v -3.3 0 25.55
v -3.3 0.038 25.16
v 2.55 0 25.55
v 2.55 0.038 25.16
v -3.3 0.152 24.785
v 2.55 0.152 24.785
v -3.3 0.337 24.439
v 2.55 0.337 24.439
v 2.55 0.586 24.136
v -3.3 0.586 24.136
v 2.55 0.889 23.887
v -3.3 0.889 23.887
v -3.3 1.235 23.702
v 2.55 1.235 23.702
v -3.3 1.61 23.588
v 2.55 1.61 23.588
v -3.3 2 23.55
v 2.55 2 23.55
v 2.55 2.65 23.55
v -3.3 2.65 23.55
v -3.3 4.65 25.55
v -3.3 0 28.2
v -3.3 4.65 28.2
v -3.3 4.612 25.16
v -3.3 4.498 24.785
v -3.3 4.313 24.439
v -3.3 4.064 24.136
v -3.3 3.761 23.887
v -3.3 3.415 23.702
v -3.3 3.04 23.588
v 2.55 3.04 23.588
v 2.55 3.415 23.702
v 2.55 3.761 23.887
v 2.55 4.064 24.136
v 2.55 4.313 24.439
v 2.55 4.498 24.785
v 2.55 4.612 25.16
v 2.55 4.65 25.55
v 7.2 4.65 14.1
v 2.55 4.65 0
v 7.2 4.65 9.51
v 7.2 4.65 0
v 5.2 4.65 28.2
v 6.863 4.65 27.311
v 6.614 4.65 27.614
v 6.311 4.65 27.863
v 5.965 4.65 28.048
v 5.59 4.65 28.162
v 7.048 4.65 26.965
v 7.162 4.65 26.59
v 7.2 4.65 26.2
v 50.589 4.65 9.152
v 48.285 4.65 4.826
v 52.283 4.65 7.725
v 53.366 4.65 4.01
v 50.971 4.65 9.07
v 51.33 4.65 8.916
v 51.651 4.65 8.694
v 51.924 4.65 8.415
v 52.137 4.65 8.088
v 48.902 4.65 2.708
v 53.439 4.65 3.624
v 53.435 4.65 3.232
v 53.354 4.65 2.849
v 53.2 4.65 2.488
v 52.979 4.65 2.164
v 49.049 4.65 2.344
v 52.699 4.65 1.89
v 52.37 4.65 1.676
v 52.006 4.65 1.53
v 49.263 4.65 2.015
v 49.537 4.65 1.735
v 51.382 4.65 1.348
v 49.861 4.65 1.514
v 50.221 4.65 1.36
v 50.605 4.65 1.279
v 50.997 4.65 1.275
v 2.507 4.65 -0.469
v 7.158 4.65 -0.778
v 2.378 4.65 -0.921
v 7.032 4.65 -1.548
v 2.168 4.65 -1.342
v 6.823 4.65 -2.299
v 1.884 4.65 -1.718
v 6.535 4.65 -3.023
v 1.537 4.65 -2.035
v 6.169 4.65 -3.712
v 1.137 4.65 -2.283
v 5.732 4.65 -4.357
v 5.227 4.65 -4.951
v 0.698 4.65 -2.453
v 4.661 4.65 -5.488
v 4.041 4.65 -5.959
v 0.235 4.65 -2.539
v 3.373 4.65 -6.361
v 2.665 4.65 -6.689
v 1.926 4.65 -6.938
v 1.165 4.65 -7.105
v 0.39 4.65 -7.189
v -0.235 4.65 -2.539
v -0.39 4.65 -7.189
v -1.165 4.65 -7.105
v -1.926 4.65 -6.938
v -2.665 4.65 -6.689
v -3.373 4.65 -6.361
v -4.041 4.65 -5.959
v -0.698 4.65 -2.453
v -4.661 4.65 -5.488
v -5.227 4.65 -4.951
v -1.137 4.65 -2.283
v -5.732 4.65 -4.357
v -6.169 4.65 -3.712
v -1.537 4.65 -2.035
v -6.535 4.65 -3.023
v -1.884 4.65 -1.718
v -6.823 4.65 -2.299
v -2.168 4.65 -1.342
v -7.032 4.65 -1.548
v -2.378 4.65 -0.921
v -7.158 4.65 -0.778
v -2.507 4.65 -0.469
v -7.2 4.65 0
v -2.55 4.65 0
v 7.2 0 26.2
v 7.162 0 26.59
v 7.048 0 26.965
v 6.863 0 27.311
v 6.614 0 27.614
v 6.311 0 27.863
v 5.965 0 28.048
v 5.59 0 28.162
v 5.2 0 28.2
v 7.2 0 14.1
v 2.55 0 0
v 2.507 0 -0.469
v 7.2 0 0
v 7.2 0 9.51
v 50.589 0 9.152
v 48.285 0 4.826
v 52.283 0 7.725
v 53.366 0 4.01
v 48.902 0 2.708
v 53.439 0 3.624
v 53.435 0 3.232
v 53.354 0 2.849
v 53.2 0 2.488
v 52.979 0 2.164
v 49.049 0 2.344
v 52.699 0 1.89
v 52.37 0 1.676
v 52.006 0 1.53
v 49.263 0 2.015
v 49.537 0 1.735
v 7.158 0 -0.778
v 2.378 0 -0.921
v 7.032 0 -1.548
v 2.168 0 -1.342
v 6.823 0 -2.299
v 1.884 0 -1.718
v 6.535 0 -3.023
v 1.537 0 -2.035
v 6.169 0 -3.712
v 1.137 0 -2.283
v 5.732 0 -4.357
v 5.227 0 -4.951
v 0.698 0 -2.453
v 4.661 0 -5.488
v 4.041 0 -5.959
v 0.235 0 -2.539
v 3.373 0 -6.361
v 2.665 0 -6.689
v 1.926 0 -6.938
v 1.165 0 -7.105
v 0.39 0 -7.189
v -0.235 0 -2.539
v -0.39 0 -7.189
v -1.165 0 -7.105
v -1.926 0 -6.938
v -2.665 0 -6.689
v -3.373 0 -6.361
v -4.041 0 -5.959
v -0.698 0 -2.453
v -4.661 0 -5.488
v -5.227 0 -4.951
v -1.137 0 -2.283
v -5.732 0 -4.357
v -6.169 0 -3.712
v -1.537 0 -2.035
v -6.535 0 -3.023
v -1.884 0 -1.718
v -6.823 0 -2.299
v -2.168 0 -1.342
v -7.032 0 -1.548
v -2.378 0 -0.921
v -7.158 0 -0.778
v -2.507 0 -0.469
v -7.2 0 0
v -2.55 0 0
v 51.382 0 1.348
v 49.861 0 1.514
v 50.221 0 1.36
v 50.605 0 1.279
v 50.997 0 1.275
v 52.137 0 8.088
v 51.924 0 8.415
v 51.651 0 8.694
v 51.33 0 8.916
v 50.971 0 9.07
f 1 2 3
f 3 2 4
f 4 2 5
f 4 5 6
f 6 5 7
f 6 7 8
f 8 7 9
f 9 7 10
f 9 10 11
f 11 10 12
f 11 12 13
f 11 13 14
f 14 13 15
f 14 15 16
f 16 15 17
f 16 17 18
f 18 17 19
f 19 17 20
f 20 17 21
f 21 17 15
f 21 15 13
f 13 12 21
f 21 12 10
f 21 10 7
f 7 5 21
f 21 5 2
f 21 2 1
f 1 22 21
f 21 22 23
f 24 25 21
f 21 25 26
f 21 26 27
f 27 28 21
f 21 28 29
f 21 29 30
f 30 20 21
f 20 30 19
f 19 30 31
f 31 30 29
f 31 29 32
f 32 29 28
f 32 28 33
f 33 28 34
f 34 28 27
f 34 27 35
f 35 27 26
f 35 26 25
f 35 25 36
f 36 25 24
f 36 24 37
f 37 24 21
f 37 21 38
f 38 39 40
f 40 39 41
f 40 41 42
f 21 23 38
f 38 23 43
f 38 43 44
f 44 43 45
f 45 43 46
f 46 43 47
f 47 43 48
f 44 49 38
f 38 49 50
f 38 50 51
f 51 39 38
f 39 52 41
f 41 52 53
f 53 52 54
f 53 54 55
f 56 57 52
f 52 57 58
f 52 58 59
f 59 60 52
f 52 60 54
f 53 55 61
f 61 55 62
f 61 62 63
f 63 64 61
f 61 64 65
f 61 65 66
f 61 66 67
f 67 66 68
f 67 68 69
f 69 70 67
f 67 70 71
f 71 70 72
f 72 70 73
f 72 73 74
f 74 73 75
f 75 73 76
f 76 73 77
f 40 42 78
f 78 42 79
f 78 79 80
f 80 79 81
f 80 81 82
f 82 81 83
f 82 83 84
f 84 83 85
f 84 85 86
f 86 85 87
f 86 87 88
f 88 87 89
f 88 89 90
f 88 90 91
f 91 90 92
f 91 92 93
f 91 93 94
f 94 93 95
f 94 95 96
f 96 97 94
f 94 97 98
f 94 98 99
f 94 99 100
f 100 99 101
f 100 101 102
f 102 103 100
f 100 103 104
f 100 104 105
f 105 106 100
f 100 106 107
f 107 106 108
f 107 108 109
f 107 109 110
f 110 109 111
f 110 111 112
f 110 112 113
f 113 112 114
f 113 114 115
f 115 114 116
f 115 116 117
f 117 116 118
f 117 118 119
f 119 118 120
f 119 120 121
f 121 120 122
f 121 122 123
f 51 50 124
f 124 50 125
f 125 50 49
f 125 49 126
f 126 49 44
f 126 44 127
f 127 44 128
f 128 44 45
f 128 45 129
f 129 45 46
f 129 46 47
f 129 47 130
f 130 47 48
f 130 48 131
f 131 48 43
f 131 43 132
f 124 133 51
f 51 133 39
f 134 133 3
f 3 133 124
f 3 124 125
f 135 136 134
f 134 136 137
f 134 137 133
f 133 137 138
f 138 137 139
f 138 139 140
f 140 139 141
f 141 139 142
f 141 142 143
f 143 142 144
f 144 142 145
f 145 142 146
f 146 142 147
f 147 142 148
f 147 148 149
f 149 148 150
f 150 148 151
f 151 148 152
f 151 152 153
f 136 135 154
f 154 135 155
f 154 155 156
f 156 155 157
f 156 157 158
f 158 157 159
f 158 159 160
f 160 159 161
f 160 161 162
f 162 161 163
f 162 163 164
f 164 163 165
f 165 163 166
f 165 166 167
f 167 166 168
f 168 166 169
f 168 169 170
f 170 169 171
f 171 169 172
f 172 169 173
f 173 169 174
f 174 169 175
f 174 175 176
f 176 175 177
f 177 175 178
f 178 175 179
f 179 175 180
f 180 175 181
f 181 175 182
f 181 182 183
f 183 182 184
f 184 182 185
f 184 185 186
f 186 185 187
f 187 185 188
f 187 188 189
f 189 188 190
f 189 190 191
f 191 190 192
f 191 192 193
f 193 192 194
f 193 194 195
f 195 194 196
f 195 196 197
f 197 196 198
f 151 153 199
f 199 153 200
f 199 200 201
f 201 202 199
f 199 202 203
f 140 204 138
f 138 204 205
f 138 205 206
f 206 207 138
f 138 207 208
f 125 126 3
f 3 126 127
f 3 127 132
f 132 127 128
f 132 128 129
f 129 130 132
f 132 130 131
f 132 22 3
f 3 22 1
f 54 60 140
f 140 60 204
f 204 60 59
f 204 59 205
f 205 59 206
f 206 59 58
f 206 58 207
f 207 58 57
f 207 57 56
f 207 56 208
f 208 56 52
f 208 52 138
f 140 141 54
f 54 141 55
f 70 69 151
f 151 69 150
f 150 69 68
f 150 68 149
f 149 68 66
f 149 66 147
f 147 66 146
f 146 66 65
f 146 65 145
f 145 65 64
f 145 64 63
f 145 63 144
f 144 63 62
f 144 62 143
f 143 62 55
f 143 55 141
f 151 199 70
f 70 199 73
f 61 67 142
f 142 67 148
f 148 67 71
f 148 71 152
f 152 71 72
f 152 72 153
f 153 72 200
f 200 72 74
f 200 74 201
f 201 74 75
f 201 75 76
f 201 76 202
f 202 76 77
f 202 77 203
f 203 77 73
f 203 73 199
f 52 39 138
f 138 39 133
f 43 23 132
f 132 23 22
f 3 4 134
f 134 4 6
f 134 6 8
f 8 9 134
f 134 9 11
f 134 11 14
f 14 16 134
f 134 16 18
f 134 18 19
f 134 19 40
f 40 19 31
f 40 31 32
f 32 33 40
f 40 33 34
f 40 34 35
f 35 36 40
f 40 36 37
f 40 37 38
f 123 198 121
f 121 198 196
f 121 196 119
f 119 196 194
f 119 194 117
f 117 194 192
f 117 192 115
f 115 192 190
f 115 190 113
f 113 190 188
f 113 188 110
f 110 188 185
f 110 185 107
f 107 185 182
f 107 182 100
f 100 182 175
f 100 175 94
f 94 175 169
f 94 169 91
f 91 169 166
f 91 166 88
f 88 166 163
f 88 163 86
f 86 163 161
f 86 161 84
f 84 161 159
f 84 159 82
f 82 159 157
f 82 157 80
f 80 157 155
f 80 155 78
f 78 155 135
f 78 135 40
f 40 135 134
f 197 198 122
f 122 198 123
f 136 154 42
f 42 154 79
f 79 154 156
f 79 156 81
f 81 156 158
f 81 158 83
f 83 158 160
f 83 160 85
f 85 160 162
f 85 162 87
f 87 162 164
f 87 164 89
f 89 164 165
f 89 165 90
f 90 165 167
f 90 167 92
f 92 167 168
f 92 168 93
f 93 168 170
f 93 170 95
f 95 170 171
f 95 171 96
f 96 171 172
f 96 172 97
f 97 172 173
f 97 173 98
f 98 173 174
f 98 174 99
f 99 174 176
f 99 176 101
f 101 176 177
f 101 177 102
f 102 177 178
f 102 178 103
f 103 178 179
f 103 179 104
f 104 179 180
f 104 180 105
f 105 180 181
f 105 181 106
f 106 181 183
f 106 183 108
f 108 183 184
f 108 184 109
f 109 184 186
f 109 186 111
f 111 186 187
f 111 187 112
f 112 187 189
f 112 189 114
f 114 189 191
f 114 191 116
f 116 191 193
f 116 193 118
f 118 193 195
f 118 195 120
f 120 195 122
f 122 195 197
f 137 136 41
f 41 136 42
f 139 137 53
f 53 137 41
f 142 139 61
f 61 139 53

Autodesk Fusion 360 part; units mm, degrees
sketch "Sketch1" plane through (0, 0, 0) normal (0, 1, 0) x (1, 0, 0)
  circle A0 centre (0, 0) radius 7.2
  circle A1 centre (0, 0) radius 2.55
  line L0 (7.2, 0) -> (2.55, 0)
  line L1 (2.55, 0) -> (2.55, -28.2)
  line L2 (2.55, -28.2) -> (7.2, -28.2)
  line L3 (7.2, -28.2) -> (7.2, 0)
  line L4 (7.2, -28.2) -> (-3.3, -28.2)
  line L5 (-3.3, -28.2) -> (-3.3, -23.55)
  line L6 (-3.3, -23.55) -> (7.2, -23.55)
  line L7 (7.2, -23.55) -> (7.2, -28.2)
  line L8 (2.55, 0) -> (-7.2, 0)
  line L9 (7.2, -5.8) -> (7.2, -1.15)
  line L10 (7.2, -14.1) -> (51.9103, -9.0016)
  line L11 (51.9103, -9.0016) -> (51.3936, -4.471)
  line L12 (51.3936, -4.471) -> (6.6834, -9.5694)
  line L13 (6.6834, -9.5694) -> (7.2, -14.1)
  line L14 (51.9103, -9.0016) -> (47.4463, -7.6995)
  line L15 (47.4463, -7.6995) -> (49.4624, -0.7876)
  line L16 (49.4624, -0.7876) -> (53.9264, -2.0897)
  line L17 (53.9264, -2.0897) -> (51.9103, -9.0016)
  dimension "d1" = 14.4
  dimension "d2" = 5.1
  dimension "d3" = 4.65
  dimension "d4" = 28.2
  dimension "d5" = 10.5
  dimension "d6" = 4.65
  dimension "d16" = 45
  dimension "d17" = 4.56
  dimension "d18" = 4.65
  dimension "d19" = 7.2
extrude "Extrude1" add sketch "Sketch1" along normal blind 4.65 contours A0 A1 L0 L8 | A0 L1 L3 L6 L9 L12 L13 | A0 L0 L1 | L1 L2 L3 L4 L6 L7 | L1 L4 L5 L6 | L3 L10 L12 L14 L15 | L3 L12 L13 | L11 L12 L15 L16 L17 | L11 L12 L14 L15
fillet "Fillet1" radius 2 3 edges at (49.4624, 2.325, 0.7876) (53.9264, 2.325, 2.0897) (51.9103, 2.325, 9.0016)
fillet "Fillet2" radius 2 1 edges at (7.2, 2.325, 28.2)
fillet "Fillet3" radius 2 2 edges at (-0.375, 4.65, 23.55) (-0.375, 0, 23.55)
